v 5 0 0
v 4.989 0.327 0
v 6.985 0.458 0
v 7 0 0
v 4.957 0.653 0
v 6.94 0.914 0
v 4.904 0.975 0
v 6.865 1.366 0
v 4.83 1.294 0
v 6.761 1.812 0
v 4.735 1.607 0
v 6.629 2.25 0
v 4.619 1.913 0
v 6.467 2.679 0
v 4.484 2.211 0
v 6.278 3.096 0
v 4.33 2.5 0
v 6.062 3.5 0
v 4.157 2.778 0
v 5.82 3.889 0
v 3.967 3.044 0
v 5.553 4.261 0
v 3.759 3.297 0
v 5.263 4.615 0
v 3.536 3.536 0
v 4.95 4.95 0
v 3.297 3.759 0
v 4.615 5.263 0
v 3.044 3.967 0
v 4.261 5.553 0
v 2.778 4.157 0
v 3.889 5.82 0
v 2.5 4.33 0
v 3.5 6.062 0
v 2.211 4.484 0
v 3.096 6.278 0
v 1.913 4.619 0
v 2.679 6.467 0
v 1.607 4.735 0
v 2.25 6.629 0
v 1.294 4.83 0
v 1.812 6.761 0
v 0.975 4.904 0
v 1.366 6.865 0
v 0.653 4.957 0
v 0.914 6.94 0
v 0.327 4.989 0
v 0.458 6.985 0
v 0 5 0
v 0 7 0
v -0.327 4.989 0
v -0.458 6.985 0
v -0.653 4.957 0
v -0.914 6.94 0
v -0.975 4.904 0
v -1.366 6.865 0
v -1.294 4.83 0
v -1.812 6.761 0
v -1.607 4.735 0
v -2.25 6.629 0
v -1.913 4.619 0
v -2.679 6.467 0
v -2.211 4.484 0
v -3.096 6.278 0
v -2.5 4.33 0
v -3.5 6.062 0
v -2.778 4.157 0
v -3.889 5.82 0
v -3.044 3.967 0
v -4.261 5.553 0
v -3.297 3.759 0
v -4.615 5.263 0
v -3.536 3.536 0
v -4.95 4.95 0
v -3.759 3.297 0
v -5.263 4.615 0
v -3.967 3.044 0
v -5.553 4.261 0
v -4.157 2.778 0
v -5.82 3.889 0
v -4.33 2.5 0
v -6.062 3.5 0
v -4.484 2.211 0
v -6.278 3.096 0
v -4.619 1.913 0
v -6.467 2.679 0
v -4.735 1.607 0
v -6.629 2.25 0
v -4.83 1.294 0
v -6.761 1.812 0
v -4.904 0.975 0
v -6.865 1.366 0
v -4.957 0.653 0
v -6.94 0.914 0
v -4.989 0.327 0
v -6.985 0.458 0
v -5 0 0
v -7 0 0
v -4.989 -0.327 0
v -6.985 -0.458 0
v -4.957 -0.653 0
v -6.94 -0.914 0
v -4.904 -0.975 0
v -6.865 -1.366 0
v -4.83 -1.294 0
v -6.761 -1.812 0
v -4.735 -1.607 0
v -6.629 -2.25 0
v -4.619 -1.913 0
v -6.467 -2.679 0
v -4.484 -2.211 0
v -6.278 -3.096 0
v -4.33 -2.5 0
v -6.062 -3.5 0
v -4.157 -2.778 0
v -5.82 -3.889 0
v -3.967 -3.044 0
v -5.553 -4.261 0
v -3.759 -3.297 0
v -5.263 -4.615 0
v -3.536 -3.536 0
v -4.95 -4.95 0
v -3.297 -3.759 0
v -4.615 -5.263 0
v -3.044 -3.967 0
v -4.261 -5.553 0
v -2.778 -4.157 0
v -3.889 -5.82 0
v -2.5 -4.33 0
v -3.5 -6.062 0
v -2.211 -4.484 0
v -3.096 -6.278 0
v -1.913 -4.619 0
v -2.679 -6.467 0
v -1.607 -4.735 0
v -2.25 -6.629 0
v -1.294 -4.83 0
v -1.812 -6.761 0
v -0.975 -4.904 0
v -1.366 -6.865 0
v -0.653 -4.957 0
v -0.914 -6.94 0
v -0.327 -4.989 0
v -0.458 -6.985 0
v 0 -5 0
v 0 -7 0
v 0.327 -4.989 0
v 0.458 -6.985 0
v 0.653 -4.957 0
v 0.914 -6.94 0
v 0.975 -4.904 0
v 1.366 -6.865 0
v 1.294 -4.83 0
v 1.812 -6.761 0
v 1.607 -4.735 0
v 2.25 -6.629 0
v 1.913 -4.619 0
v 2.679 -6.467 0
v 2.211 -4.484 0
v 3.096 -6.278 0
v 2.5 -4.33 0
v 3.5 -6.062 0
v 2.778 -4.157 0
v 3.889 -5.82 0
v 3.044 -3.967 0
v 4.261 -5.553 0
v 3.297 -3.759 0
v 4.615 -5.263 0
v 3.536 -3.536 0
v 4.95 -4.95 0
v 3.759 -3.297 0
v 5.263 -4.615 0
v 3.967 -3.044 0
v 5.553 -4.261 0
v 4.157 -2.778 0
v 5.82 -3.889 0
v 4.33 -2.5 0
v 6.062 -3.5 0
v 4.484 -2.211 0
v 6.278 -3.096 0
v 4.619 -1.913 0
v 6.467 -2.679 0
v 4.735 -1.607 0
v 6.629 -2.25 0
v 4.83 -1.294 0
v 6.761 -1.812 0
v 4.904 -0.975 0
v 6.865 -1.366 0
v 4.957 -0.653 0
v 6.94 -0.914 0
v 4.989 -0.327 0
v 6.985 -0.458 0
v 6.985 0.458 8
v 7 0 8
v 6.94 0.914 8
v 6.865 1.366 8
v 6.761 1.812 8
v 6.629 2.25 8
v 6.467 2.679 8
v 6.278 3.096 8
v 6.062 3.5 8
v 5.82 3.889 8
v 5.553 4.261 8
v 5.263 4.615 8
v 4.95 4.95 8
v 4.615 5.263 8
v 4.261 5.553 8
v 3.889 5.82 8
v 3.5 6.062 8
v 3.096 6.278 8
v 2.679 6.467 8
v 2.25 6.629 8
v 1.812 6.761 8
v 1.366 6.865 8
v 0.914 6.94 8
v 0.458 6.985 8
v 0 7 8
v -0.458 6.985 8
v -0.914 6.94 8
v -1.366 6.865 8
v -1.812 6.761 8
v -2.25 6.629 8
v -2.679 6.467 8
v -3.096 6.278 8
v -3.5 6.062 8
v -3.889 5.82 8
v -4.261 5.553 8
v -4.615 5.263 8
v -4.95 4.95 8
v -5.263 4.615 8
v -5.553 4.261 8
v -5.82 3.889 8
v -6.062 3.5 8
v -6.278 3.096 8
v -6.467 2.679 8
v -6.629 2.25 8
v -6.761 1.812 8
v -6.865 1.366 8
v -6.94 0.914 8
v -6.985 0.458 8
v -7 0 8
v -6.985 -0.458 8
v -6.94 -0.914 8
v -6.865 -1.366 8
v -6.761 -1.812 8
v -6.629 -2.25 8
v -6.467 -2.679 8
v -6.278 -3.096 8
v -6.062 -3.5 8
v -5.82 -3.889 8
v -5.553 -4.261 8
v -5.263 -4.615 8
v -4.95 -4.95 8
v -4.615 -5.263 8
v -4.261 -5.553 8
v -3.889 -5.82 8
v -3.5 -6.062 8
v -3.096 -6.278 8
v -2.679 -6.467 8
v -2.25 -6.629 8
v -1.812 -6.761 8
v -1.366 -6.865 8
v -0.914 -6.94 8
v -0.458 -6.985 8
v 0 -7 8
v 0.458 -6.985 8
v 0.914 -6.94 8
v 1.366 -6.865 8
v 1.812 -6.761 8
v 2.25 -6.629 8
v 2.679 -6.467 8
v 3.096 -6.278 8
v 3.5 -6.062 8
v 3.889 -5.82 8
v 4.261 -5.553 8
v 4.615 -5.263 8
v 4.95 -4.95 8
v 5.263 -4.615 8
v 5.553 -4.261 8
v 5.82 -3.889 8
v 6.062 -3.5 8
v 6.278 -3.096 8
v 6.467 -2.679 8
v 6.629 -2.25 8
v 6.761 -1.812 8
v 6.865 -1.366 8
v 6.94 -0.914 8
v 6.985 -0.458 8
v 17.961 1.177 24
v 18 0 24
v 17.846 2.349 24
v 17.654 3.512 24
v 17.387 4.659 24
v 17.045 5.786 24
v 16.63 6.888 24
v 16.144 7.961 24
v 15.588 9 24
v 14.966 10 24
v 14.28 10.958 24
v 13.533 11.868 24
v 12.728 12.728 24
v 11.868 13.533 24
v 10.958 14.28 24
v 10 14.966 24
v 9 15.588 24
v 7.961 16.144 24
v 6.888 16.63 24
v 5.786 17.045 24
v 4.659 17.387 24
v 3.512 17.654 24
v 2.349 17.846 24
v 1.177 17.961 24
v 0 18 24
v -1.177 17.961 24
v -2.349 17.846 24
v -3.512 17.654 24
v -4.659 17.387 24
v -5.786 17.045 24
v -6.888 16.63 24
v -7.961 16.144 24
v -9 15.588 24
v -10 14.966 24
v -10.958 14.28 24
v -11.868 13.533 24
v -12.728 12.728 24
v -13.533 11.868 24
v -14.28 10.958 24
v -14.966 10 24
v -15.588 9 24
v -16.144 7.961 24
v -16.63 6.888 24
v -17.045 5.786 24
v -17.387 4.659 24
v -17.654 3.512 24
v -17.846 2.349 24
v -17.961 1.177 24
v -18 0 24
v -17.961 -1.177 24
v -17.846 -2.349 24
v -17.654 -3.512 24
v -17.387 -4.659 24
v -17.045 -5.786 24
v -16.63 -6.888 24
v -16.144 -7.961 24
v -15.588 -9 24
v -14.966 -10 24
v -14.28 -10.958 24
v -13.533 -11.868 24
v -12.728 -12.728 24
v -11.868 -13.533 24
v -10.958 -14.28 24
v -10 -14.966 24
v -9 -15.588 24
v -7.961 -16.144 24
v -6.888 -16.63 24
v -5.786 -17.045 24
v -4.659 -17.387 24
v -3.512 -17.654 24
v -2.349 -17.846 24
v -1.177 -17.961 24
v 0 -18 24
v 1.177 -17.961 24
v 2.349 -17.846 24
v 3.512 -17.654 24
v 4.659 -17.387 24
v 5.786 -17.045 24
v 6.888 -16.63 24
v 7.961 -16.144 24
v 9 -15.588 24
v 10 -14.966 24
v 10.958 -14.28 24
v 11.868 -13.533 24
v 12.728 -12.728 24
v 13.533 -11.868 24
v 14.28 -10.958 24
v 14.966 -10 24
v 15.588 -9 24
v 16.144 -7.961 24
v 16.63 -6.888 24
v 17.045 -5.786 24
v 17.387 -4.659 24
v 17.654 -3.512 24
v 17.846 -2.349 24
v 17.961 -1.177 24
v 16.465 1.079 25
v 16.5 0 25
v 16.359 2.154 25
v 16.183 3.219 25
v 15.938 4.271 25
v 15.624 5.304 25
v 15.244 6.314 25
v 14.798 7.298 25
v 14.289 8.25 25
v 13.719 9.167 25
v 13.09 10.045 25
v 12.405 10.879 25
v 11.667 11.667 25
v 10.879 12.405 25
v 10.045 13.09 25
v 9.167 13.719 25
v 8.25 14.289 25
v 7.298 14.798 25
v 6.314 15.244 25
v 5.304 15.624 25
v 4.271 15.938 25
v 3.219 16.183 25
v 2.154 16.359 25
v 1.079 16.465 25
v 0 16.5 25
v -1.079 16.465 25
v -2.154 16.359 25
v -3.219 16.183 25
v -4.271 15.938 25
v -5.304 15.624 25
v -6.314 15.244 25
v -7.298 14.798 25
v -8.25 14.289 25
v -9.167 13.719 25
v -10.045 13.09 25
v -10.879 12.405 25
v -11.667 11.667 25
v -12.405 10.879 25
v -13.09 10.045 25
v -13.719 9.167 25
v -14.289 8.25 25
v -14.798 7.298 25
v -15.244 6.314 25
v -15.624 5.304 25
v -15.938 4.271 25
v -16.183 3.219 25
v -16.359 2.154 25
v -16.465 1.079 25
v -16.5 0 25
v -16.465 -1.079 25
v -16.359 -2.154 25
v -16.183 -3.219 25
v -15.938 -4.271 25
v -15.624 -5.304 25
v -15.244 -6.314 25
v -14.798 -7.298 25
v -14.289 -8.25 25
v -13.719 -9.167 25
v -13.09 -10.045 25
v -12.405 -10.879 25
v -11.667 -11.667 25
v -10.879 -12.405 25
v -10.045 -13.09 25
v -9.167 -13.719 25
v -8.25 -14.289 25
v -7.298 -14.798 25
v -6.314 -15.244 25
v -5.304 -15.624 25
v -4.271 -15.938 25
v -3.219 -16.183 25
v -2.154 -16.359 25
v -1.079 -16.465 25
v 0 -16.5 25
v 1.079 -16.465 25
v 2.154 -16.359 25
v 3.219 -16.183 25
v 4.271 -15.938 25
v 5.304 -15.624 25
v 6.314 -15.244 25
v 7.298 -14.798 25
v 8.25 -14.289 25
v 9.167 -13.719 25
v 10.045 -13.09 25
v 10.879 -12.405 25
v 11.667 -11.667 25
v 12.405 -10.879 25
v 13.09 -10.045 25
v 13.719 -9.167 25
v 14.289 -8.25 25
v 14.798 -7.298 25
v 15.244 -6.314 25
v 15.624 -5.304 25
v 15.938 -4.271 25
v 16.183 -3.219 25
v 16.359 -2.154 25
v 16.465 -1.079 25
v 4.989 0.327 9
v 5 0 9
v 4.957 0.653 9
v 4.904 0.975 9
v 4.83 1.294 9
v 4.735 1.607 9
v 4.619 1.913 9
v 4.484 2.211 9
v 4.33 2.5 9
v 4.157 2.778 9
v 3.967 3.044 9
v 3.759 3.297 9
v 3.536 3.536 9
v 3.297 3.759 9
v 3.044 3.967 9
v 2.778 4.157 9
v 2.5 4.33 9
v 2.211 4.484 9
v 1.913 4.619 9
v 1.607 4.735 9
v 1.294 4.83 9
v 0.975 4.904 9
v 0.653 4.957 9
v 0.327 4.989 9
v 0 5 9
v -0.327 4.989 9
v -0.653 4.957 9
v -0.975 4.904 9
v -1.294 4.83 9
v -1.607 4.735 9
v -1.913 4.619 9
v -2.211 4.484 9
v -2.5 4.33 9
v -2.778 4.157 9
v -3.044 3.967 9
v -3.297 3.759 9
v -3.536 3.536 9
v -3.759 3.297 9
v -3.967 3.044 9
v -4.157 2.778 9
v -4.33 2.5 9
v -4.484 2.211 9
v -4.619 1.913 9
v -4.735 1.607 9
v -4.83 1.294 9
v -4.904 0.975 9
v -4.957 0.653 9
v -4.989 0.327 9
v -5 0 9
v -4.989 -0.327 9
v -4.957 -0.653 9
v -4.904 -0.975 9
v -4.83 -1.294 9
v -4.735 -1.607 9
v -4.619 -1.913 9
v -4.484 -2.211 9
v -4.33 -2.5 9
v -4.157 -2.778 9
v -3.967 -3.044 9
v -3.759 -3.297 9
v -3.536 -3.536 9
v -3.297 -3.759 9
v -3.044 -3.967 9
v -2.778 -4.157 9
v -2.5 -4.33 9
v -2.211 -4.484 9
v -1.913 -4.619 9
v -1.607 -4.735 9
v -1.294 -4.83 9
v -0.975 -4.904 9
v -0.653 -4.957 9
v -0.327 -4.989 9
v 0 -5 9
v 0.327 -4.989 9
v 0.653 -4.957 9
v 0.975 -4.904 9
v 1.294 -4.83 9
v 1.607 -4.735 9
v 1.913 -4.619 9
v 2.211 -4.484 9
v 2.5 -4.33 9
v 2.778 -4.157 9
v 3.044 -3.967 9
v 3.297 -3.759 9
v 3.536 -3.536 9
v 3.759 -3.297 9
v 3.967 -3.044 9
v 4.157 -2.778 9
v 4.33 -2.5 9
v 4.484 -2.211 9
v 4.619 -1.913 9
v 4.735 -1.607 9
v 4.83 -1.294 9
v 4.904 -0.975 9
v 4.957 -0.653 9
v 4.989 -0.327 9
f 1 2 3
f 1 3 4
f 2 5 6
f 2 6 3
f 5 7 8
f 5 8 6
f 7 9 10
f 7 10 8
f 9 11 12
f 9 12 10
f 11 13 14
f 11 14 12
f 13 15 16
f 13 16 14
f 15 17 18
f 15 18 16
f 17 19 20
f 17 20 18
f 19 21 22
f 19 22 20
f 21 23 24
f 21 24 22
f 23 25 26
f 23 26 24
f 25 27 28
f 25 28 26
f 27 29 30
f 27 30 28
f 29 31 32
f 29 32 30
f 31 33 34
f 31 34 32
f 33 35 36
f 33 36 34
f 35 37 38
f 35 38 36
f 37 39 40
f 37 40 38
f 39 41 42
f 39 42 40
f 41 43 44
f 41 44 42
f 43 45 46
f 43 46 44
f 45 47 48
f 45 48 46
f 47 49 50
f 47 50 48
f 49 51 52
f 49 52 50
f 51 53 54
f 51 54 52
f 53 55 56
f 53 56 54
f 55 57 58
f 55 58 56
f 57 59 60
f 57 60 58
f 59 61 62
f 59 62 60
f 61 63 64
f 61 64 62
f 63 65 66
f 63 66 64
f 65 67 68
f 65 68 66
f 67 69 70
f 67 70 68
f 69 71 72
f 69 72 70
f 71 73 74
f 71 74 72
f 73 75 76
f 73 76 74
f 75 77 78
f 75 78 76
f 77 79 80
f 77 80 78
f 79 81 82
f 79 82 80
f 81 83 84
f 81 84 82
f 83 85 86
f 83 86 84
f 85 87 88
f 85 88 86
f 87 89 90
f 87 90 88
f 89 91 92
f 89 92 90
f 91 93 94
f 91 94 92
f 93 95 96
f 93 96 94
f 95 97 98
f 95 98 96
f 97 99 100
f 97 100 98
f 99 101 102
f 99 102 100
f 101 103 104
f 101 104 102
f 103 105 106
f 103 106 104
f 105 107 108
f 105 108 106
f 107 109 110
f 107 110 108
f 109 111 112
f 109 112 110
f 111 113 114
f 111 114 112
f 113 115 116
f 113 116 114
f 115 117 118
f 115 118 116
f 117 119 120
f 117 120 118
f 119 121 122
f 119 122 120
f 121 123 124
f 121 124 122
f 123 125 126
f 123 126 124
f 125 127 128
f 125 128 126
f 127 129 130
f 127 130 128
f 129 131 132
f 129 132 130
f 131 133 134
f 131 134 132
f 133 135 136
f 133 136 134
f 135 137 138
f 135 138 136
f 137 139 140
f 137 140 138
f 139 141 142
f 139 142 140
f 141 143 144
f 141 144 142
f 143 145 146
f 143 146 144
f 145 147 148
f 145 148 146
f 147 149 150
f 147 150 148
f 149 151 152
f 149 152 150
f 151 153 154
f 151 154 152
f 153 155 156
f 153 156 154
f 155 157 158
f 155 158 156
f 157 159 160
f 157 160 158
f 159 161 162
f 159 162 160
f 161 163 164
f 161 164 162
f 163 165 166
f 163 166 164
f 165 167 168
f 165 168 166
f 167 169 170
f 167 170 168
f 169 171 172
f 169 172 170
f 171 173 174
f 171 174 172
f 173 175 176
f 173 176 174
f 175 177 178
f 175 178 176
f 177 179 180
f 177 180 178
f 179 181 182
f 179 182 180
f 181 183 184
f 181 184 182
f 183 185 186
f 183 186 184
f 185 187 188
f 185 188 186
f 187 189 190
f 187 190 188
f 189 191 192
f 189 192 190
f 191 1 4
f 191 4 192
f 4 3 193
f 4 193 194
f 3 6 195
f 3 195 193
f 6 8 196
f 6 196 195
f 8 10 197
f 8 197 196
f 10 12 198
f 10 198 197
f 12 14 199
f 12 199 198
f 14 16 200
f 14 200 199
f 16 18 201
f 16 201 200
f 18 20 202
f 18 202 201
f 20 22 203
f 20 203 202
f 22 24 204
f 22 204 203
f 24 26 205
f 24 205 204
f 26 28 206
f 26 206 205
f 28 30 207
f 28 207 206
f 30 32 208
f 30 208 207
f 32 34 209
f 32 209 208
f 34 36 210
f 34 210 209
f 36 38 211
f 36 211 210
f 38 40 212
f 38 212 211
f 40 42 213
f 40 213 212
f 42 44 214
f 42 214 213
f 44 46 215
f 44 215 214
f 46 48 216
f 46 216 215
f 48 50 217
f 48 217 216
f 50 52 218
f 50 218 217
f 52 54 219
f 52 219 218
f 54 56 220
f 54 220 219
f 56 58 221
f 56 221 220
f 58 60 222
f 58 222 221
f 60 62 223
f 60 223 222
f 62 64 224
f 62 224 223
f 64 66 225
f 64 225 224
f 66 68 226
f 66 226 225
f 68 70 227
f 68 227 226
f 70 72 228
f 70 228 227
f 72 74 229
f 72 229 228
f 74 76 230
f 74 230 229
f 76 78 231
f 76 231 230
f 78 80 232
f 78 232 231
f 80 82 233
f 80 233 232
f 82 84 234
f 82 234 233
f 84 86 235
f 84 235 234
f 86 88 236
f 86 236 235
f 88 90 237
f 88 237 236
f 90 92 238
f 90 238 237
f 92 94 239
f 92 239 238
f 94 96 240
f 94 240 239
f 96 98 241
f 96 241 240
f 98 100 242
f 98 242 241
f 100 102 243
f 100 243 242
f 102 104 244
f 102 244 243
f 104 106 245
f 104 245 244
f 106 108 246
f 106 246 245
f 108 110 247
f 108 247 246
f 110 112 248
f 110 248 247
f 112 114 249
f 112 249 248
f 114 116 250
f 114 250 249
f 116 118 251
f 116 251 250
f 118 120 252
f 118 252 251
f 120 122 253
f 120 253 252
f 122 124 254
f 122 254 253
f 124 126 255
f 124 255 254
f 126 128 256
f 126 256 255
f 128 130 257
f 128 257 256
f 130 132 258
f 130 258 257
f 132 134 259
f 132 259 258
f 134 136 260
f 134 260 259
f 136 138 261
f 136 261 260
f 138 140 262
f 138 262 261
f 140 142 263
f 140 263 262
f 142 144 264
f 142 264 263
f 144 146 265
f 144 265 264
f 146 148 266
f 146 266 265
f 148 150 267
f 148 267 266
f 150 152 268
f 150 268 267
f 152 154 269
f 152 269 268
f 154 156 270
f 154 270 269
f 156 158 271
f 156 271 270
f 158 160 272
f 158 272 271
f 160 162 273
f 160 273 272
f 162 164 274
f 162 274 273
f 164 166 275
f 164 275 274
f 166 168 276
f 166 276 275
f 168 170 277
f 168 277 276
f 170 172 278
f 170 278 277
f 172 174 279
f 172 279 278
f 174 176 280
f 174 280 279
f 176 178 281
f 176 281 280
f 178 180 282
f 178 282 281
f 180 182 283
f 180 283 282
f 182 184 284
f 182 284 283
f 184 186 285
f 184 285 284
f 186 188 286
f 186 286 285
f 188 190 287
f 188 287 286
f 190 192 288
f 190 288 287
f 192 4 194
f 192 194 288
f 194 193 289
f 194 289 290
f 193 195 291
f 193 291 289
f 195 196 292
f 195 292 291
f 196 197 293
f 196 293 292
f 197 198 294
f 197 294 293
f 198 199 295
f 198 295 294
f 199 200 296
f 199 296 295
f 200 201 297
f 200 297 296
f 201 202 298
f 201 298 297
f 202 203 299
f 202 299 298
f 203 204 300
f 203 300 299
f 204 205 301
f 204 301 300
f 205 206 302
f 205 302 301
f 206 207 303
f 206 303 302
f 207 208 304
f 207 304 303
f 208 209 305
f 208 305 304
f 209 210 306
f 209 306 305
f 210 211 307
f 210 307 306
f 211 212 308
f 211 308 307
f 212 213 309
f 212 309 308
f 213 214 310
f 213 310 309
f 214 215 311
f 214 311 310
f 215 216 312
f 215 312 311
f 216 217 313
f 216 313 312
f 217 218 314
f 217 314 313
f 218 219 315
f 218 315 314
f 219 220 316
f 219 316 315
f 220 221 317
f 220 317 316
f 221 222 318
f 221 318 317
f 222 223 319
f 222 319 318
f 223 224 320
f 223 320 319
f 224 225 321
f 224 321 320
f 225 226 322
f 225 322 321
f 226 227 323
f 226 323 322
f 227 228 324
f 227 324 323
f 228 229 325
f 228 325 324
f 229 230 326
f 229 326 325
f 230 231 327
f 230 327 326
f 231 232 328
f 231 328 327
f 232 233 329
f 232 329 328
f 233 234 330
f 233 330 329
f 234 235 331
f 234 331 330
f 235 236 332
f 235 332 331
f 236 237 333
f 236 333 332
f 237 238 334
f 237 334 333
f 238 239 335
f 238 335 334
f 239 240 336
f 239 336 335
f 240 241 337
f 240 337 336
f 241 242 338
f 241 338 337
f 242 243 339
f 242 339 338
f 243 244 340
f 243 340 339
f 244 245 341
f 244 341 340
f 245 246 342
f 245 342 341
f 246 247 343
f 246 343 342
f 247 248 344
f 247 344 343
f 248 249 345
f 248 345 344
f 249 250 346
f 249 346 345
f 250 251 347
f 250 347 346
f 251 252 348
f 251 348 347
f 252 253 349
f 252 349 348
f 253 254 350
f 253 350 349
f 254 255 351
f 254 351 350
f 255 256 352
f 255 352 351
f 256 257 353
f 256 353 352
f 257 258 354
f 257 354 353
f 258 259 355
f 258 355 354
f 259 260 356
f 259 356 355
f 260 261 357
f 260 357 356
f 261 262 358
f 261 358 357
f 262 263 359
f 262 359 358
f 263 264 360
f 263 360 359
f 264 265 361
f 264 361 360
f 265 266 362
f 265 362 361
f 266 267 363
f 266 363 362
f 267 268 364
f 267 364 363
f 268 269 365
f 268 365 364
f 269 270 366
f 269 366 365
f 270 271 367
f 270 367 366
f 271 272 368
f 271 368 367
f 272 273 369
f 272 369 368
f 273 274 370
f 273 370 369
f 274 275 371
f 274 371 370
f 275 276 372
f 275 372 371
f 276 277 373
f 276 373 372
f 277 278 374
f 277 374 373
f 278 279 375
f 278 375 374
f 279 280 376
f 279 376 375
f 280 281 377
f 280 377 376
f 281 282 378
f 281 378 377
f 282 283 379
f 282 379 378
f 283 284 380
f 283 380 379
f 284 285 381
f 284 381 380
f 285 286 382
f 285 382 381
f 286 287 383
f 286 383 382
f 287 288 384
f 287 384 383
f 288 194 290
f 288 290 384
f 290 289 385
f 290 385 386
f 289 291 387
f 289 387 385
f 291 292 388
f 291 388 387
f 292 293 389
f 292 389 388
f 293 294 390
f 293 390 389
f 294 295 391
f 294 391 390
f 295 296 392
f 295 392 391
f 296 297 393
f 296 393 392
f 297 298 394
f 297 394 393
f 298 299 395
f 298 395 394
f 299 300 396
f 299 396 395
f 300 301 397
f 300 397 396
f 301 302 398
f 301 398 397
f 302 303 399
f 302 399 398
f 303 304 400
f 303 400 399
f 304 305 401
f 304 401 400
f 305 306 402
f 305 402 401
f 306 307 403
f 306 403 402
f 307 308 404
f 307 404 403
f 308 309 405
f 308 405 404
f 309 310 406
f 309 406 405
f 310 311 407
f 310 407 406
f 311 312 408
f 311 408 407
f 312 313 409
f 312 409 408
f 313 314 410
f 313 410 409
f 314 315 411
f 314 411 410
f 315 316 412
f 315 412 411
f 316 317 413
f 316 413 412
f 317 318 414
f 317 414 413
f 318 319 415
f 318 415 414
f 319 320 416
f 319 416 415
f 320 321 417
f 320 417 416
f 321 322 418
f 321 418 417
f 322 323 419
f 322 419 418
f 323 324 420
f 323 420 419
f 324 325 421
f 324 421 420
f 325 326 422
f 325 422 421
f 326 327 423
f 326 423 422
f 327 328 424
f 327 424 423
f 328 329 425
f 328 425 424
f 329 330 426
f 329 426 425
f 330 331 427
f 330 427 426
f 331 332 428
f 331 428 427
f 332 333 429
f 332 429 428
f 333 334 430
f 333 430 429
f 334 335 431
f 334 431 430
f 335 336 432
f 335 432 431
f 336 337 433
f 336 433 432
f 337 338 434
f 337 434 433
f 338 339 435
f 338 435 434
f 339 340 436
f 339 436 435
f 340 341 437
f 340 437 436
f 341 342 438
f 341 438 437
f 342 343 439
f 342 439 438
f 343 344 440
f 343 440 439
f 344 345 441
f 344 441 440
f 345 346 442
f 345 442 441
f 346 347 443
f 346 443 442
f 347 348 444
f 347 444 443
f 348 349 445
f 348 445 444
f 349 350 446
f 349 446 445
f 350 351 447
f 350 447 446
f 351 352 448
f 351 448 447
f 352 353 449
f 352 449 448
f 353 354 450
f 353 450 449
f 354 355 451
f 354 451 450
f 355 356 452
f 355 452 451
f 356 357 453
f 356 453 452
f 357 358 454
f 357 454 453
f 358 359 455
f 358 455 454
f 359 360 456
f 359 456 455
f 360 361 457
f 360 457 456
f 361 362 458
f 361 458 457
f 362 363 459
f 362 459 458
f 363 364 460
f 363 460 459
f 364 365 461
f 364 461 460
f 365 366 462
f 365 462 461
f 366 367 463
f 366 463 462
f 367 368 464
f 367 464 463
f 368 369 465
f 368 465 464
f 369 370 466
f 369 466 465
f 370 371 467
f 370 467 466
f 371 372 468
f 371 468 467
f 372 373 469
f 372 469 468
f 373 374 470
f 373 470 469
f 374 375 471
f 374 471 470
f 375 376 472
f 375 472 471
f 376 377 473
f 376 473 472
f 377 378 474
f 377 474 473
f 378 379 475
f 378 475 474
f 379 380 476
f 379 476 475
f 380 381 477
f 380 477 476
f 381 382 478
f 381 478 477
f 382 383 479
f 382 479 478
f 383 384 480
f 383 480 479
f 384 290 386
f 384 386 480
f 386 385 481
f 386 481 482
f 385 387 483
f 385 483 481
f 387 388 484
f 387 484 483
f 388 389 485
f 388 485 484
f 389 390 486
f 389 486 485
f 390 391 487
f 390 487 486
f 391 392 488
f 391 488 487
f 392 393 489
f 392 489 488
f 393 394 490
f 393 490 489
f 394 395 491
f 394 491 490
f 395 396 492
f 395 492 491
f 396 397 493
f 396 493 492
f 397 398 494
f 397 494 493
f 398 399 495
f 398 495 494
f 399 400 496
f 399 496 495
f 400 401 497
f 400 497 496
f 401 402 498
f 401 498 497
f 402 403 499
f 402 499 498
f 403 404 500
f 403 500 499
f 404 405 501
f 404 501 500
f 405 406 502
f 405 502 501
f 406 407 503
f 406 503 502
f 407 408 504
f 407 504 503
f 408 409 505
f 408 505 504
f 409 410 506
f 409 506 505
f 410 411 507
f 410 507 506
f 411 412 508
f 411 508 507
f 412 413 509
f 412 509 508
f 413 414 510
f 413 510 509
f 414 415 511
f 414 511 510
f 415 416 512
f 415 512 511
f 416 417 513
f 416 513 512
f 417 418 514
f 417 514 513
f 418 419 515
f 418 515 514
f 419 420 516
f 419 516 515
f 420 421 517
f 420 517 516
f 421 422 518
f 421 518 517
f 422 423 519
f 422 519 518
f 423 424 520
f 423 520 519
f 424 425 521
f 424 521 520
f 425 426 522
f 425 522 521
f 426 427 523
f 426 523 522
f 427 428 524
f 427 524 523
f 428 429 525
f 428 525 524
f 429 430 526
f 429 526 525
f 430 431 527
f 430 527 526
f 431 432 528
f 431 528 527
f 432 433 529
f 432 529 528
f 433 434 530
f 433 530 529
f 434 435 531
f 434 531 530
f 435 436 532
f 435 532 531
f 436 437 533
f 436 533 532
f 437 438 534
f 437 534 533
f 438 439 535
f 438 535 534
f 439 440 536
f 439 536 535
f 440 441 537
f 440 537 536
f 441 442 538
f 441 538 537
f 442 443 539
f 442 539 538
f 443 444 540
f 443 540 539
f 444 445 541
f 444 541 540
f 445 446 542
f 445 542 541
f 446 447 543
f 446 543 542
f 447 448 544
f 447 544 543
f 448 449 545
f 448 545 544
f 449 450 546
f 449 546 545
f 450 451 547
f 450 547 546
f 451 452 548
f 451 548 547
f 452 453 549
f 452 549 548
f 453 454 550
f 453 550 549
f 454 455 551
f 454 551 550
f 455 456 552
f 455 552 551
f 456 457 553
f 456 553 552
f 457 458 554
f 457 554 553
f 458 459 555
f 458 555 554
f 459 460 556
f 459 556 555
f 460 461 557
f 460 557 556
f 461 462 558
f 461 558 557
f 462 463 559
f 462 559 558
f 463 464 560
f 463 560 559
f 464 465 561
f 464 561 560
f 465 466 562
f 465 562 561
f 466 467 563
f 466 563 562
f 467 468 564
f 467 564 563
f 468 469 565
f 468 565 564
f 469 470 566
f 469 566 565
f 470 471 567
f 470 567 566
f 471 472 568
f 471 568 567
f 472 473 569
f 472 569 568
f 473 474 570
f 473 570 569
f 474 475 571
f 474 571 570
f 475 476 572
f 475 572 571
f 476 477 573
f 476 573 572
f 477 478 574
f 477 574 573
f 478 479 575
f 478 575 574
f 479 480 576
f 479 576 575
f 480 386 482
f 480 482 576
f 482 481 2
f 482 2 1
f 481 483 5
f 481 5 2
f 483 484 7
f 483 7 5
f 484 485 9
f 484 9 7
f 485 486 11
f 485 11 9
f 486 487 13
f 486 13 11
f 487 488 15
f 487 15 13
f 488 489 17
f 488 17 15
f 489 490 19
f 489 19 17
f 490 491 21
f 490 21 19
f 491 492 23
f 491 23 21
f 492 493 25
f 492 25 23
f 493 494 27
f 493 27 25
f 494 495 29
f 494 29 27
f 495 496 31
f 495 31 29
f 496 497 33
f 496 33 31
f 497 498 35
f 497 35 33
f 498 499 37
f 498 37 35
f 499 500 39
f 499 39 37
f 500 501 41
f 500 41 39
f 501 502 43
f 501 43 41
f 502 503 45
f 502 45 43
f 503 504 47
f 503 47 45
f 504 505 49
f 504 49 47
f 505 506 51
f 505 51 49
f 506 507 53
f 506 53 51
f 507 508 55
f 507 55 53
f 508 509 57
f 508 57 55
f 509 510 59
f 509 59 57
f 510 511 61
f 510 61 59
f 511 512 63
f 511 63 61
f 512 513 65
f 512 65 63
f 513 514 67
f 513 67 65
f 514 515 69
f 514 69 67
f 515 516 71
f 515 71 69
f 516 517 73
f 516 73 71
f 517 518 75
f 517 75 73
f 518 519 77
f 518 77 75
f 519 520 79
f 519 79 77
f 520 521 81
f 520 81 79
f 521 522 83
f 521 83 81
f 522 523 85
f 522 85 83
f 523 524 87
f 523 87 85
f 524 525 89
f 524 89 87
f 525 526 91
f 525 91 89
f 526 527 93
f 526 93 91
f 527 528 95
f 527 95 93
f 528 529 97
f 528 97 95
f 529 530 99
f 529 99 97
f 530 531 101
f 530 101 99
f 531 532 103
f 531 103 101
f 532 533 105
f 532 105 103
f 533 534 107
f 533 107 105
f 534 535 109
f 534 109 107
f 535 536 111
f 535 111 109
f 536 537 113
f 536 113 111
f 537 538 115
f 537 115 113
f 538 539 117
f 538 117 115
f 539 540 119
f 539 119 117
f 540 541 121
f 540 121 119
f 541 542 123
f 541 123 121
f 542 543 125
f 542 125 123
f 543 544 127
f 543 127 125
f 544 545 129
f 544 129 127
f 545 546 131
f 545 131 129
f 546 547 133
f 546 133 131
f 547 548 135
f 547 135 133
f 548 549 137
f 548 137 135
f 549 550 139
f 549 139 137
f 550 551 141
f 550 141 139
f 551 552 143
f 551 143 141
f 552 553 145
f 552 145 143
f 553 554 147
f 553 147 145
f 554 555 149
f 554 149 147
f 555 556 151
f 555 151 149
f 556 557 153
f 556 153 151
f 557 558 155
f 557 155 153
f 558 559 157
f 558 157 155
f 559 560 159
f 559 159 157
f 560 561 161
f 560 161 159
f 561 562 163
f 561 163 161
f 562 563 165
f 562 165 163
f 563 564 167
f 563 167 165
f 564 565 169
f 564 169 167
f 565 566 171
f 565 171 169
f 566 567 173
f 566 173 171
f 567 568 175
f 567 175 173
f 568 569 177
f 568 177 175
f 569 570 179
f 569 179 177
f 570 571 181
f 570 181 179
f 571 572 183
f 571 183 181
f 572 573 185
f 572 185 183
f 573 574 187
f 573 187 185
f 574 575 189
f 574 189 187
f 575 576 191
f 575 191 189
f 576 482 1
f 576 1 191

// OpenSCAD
// Original MechIntel educational model. CC0-1.0. Units: mm.
// Not a standardized or load-rated component.
$fn=96;
// Section points: [radius, height], mm. Edit to change the profile.
section=[[5, 0], [7, 0], [7, 8], [18, 24], [16.5, 25], [5, 9]];
rotate_extrude($fn=96) polygon(points=section);
